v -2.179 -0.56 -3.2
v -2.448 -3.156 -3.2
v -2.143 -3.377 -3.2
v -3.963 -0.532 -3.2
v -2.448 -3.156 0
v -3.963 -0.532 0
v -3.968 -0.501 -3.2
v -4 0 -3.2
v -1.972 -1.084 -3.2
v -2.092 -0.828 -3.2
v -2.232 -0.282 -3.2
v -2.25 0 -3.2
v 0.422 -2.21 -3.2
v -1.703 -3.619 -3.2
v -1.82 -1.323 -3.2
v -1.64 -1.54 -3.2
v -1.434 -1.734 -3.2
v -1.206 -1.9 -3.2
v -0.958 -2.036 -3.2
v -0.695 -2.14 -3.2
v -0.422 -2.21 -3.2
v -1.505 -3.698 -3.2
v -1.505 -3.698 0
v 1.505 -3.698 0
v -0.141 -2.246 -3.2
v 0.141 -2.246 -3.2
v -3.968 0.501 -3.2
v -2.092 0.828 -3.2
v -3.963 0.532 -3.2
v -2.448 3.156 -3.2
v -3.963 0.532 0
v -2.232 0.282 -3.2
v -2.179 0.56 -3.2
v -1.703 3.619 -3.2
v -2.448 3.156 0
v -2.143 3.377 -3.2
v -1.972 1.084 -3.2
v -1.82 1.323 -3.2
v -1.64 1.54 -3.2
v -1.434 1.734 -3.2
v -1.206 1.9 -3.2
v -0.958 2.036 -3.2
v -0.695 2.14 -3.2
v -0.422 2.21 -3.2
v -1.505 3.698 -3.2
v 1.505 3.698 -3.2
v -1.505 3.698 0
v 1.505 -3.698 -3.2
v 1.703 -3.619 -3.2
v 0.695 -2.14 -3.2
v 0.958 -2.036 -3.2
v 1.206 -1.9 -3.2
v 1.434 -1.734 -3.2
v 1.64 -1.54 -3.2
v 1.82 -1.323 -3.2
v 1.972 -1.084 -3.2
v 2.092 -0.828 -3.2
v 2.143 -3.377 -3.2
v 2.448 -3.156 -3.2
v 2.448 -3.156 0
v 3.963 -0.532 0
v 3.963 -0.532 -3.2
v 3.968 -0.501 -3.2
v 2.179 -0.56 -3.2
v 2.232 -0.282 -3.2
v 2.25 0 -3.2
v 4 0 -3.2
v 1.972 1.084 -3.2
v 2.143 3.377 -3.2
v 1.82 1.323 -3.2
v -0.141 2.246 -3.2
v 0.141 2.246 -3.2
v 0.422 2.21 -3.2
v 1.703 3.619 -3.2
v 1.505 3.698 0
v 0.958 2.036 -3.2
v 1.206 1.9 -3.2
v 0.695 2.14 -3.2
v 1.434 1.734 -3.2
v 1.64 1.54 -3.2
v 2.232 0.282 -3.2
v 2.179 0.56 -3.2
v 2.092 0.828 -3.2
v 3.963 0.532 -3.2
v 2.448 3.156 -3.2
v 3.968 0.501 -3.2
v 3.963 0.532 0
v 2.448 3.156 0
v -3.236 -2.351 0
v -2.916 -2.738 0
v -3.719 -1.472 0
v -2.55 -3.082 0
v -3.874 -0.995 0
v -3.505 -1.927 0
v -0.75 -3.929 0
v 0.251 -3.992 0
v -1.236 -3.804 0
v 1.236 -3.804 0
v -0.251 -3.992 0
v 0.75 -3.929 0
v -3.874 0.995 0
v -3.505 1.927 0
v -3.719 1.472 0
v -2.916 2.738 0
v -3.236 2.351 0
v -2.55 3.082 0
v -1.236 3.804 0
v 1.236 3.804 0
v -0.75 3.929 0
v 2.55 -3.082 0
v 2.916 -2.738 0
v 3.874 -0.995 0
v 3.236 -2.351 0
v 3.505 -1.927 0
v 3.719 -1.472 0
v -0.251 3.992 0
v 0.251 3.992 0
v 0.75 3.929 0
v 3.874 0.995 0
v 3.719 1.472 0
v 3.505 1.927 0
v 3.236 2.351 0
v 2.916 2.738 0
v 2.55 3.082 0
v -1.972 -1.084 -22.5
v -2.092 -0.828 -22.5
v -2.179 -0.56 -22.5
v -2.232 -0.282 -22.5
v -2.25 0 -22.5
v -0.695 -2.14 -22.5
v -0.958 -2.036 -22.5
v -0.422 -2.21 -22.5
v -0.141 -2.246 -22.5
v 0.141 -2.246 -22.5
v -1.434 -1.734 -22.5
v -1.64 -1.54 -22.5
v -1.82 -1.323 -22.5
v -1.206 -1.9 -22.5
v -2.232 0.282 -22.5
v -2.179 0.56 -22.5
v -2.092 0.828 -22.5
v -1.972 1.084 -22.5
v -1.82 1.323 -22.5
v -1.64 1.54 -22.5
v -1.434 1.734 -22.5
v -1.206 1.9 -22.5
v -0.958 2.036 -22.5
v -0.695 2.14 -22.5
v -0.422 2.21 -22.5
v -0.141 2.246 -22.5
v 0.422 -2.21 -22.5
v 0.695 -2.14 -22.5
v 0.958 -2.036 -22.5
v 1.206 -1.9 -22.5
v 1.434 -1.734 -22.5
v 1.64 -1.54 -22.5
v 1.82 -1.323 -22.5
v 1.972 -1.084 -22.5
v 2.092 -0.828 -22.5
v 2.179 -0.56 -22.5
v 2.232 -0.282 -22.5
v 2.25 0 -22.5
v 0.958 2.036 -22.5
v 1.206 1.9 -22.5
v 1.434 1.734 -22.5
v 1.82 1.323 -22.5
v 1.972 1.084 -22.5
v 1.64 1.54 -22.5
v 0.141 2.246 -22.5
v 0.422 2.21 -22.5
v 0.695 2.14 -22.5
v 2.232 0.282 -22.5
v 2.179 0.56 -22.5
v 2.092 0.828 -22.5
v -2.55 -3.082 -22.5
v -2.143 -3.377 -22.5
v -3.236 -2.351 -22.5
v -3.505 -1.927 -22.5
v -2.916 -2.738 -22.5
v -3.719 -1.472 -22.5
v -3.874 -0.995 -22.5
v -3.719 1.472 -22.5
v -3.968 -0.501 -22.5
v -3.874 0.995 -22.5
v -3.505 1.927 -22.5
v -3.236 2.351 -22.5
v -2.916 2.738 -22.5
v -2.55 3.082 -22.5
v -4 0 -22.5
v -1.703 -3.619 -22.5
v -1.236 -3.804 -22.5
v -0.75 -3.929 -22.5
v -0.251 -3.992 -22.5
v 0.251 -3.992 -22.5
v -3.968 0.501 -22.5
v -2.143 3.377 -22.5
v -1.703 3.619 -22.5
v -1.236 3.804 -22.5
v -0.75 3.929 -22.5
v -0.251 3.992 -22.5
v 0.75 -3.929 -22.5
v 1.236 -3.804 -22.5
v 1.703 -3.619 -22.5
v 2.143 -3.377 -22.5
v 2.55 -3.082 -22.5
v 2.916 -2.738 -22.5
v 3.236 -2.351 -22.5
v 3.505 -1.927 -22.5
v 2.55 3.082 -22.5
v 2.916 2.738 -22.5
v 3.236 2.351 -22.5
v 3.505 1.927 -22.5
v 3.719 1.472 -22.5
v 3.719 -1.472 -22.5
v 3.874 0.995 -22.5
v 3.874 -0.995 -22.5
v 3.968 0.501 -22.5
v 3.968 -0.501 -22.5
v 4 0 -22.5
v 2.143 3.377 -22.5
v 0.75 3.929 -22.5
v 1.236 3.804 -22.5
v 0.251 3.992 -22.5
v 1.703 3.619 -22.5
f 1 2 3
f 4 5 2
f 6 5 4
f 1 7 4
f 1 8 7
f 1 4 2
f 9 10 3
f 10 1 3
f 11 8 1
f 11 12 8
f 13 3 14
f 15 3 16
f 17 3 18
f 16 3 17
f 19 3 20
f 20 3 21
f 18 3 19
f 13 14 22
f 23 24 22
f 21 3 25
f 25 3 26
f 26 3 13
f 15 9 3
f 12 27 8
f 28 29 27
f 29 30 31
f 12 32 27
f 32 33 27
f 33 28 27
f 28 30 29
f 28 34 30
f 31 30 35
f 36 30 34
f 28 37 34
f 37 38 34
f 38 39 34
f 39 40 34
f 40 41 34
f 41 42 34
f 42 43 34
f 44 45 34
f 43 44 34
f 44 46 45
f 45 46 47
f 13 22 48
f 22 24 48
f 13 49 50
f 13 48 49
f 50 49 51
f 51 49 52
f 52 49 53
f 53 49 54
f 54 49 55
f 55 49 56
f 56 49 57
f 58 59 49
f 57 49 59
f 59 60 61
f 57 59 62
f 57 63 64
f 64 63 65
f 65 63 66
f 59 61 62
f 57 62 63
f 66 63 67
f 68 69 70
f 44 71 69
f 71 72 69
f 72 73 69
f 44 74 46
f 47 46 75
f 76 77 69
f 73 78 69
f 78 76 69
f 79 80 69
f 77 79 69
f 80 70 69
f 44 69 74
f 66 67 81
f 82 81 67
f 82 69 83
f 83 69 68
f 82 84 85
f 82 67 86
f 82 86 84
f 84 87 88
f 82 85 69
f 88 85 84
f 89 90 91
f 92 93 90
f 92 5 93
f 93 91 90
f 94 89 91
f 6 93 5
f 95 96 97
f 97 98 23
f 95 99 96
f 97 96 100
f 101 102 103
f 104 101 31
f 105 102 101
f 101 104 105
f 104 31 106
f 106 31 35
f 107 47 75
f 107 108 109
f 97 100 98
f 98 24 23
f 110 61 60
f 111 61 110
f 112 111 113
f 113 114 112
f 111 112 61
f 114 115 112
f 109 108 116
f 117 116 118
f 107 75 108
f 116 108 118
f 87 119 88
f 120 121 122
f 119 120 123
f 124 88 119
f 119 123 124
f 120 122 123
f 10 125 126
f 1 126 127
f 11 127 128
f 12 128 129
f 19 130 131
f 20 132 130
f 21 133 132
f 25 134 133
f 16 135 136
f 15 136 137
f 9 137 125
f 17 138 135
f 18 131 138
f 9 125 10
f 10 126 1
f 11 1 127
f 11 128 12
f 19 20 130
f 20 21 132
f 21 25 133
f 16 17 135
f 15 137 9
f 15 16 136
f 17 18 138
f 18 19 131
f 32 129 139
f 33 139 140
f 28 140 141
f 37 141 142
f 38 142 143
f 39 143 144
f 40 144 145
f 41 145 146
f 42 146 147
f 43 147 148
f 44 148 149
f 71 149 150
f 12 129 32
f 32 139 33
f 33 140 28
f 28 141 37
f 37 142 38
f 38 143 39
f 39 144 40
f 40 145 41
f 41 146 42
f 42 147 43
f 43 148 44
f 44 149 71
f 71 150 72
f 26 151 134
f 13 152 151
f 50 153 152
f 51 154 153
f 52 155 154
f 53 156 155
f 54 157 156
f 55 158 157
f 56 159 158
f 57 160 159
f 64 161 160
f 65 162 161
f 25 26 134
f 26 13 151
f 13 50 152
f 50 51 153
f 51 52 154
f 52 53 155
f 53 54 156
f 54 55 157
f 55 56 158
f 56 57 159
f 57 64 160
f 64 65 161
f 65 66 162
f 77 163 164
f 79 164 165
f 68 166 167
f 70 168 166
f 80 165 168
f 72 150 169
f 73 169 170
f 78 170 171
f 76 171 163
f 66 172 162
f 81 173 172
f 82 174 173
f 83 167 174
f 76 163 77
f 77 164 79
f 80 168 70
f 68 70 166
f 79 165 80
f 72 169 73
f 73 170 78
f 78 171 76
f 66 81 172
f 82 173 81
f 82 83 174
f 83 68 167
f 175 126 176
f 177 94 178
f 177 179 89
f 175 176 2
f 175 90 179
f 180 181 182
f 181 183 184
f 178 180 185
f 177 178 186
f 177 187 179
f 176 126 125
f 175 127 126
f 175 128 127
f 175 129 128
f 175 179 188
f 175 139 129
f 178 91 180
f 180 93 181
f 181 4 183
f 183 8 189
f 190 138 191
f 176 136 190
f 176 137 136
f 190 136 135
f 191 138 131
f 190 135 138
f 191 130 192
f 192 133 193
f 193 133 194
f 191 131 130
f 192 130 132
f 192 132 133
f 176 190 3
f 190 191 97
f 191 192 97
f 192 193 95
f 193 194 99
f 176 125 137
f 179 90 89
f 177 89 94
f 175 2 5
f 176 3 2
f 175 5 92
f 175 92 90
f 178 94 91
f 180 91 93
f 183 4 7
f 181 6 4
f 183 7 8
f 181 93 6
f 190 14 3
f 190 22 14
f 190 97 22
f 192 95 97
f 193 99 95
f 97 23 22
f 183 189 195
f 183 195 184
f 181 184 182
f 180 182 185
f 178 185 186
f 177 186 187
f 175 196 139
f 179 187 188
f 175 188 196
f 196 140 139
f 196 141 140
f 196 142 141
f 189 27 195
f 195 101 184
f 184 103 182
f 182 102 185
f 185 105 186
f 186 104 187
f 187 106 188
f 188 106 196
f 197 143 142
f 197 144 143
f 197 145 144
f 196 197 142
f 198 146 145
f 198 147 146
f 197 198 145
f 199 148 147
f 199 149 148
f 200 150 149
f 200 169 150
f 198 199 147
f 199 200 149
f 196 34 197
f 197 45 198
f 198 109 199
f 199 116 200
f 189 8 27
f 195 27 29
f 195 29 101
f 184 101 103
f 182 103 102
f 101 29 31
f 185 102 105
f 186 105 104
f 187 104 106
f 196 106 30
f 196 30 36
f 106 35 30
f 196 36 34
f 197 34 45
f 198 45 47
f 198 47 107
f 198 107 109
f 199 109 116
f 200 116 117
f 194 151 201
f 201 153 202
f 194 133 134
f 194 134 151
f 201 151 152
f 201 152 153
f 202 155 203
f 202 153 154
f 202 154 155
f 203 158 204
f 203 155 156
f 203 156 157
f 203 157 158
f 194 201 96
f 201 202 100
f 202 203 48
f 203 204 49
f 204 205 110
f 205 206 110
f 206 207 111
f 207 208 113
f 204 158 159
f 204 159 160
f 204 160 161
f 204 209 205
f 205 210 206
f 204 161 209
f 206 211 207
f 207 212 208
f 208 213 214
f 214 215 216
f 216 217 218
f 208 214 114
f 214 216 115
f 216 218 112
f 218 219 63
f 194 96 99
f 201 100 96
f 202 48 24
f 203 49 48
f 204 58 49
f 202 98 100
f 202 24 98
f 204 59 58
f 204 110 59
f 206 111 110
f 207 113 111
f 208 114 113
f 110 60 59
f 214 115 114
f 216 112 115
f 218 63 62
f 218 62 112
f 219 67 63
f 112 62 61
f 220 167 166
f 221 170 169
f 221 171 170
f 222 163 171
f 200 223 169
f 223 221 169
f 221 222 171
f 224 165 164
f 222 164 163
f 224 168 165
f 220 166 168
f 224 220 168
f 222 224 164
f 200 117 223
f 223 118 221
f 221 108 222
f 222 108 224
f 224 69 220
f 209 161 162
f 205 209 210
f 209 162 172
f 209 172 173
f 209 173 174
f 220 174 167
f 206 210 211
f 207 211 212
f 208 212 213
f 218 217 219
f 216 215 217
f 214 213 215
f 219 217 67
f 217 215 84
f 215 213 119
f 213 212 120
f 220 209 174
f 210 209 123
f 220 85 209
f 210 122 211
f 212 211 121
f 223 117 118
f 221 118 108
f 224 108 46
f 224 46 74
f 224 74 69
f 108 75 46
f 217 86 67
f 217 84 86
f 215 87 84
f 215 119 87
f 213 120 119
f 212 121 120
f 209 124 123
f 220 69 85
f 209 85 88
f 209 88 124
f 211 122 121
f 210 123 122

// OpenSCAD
$fn = 50;

difference() {
	union() {
		translate(v = [0, 0, -22.5]) {
			cylinder(h = 25.5, r = 4.0);
		}
	}
	union() {
		translate(v = [0, 0, 0]) {
			rotate(a = [0, 0, 0]) {
				difference() {
					union() {
						translate(v = [0, 0, -3.2]) {
							linear_extrude(height = 3.2) {
								polygon(points = [[4.2698, 0.0], [2.1349000000000005, 3.697755269078796], [-2.134899999999999, 3.6977552690787965], [-4.2698, 5.228996902999369e-16], [-2.134900000000002, -3.6977552690787956], [2.1348999999999974, -3.697755269078798]]);
							}
						}
					}
					union();
				}
			}
		}
		#cylinder(h = 3, r = 5.0);
		#translate(v = [0, 0, -100.0]) {
			cylinder(h = 200, r = 2.25);
		}
	}
}
